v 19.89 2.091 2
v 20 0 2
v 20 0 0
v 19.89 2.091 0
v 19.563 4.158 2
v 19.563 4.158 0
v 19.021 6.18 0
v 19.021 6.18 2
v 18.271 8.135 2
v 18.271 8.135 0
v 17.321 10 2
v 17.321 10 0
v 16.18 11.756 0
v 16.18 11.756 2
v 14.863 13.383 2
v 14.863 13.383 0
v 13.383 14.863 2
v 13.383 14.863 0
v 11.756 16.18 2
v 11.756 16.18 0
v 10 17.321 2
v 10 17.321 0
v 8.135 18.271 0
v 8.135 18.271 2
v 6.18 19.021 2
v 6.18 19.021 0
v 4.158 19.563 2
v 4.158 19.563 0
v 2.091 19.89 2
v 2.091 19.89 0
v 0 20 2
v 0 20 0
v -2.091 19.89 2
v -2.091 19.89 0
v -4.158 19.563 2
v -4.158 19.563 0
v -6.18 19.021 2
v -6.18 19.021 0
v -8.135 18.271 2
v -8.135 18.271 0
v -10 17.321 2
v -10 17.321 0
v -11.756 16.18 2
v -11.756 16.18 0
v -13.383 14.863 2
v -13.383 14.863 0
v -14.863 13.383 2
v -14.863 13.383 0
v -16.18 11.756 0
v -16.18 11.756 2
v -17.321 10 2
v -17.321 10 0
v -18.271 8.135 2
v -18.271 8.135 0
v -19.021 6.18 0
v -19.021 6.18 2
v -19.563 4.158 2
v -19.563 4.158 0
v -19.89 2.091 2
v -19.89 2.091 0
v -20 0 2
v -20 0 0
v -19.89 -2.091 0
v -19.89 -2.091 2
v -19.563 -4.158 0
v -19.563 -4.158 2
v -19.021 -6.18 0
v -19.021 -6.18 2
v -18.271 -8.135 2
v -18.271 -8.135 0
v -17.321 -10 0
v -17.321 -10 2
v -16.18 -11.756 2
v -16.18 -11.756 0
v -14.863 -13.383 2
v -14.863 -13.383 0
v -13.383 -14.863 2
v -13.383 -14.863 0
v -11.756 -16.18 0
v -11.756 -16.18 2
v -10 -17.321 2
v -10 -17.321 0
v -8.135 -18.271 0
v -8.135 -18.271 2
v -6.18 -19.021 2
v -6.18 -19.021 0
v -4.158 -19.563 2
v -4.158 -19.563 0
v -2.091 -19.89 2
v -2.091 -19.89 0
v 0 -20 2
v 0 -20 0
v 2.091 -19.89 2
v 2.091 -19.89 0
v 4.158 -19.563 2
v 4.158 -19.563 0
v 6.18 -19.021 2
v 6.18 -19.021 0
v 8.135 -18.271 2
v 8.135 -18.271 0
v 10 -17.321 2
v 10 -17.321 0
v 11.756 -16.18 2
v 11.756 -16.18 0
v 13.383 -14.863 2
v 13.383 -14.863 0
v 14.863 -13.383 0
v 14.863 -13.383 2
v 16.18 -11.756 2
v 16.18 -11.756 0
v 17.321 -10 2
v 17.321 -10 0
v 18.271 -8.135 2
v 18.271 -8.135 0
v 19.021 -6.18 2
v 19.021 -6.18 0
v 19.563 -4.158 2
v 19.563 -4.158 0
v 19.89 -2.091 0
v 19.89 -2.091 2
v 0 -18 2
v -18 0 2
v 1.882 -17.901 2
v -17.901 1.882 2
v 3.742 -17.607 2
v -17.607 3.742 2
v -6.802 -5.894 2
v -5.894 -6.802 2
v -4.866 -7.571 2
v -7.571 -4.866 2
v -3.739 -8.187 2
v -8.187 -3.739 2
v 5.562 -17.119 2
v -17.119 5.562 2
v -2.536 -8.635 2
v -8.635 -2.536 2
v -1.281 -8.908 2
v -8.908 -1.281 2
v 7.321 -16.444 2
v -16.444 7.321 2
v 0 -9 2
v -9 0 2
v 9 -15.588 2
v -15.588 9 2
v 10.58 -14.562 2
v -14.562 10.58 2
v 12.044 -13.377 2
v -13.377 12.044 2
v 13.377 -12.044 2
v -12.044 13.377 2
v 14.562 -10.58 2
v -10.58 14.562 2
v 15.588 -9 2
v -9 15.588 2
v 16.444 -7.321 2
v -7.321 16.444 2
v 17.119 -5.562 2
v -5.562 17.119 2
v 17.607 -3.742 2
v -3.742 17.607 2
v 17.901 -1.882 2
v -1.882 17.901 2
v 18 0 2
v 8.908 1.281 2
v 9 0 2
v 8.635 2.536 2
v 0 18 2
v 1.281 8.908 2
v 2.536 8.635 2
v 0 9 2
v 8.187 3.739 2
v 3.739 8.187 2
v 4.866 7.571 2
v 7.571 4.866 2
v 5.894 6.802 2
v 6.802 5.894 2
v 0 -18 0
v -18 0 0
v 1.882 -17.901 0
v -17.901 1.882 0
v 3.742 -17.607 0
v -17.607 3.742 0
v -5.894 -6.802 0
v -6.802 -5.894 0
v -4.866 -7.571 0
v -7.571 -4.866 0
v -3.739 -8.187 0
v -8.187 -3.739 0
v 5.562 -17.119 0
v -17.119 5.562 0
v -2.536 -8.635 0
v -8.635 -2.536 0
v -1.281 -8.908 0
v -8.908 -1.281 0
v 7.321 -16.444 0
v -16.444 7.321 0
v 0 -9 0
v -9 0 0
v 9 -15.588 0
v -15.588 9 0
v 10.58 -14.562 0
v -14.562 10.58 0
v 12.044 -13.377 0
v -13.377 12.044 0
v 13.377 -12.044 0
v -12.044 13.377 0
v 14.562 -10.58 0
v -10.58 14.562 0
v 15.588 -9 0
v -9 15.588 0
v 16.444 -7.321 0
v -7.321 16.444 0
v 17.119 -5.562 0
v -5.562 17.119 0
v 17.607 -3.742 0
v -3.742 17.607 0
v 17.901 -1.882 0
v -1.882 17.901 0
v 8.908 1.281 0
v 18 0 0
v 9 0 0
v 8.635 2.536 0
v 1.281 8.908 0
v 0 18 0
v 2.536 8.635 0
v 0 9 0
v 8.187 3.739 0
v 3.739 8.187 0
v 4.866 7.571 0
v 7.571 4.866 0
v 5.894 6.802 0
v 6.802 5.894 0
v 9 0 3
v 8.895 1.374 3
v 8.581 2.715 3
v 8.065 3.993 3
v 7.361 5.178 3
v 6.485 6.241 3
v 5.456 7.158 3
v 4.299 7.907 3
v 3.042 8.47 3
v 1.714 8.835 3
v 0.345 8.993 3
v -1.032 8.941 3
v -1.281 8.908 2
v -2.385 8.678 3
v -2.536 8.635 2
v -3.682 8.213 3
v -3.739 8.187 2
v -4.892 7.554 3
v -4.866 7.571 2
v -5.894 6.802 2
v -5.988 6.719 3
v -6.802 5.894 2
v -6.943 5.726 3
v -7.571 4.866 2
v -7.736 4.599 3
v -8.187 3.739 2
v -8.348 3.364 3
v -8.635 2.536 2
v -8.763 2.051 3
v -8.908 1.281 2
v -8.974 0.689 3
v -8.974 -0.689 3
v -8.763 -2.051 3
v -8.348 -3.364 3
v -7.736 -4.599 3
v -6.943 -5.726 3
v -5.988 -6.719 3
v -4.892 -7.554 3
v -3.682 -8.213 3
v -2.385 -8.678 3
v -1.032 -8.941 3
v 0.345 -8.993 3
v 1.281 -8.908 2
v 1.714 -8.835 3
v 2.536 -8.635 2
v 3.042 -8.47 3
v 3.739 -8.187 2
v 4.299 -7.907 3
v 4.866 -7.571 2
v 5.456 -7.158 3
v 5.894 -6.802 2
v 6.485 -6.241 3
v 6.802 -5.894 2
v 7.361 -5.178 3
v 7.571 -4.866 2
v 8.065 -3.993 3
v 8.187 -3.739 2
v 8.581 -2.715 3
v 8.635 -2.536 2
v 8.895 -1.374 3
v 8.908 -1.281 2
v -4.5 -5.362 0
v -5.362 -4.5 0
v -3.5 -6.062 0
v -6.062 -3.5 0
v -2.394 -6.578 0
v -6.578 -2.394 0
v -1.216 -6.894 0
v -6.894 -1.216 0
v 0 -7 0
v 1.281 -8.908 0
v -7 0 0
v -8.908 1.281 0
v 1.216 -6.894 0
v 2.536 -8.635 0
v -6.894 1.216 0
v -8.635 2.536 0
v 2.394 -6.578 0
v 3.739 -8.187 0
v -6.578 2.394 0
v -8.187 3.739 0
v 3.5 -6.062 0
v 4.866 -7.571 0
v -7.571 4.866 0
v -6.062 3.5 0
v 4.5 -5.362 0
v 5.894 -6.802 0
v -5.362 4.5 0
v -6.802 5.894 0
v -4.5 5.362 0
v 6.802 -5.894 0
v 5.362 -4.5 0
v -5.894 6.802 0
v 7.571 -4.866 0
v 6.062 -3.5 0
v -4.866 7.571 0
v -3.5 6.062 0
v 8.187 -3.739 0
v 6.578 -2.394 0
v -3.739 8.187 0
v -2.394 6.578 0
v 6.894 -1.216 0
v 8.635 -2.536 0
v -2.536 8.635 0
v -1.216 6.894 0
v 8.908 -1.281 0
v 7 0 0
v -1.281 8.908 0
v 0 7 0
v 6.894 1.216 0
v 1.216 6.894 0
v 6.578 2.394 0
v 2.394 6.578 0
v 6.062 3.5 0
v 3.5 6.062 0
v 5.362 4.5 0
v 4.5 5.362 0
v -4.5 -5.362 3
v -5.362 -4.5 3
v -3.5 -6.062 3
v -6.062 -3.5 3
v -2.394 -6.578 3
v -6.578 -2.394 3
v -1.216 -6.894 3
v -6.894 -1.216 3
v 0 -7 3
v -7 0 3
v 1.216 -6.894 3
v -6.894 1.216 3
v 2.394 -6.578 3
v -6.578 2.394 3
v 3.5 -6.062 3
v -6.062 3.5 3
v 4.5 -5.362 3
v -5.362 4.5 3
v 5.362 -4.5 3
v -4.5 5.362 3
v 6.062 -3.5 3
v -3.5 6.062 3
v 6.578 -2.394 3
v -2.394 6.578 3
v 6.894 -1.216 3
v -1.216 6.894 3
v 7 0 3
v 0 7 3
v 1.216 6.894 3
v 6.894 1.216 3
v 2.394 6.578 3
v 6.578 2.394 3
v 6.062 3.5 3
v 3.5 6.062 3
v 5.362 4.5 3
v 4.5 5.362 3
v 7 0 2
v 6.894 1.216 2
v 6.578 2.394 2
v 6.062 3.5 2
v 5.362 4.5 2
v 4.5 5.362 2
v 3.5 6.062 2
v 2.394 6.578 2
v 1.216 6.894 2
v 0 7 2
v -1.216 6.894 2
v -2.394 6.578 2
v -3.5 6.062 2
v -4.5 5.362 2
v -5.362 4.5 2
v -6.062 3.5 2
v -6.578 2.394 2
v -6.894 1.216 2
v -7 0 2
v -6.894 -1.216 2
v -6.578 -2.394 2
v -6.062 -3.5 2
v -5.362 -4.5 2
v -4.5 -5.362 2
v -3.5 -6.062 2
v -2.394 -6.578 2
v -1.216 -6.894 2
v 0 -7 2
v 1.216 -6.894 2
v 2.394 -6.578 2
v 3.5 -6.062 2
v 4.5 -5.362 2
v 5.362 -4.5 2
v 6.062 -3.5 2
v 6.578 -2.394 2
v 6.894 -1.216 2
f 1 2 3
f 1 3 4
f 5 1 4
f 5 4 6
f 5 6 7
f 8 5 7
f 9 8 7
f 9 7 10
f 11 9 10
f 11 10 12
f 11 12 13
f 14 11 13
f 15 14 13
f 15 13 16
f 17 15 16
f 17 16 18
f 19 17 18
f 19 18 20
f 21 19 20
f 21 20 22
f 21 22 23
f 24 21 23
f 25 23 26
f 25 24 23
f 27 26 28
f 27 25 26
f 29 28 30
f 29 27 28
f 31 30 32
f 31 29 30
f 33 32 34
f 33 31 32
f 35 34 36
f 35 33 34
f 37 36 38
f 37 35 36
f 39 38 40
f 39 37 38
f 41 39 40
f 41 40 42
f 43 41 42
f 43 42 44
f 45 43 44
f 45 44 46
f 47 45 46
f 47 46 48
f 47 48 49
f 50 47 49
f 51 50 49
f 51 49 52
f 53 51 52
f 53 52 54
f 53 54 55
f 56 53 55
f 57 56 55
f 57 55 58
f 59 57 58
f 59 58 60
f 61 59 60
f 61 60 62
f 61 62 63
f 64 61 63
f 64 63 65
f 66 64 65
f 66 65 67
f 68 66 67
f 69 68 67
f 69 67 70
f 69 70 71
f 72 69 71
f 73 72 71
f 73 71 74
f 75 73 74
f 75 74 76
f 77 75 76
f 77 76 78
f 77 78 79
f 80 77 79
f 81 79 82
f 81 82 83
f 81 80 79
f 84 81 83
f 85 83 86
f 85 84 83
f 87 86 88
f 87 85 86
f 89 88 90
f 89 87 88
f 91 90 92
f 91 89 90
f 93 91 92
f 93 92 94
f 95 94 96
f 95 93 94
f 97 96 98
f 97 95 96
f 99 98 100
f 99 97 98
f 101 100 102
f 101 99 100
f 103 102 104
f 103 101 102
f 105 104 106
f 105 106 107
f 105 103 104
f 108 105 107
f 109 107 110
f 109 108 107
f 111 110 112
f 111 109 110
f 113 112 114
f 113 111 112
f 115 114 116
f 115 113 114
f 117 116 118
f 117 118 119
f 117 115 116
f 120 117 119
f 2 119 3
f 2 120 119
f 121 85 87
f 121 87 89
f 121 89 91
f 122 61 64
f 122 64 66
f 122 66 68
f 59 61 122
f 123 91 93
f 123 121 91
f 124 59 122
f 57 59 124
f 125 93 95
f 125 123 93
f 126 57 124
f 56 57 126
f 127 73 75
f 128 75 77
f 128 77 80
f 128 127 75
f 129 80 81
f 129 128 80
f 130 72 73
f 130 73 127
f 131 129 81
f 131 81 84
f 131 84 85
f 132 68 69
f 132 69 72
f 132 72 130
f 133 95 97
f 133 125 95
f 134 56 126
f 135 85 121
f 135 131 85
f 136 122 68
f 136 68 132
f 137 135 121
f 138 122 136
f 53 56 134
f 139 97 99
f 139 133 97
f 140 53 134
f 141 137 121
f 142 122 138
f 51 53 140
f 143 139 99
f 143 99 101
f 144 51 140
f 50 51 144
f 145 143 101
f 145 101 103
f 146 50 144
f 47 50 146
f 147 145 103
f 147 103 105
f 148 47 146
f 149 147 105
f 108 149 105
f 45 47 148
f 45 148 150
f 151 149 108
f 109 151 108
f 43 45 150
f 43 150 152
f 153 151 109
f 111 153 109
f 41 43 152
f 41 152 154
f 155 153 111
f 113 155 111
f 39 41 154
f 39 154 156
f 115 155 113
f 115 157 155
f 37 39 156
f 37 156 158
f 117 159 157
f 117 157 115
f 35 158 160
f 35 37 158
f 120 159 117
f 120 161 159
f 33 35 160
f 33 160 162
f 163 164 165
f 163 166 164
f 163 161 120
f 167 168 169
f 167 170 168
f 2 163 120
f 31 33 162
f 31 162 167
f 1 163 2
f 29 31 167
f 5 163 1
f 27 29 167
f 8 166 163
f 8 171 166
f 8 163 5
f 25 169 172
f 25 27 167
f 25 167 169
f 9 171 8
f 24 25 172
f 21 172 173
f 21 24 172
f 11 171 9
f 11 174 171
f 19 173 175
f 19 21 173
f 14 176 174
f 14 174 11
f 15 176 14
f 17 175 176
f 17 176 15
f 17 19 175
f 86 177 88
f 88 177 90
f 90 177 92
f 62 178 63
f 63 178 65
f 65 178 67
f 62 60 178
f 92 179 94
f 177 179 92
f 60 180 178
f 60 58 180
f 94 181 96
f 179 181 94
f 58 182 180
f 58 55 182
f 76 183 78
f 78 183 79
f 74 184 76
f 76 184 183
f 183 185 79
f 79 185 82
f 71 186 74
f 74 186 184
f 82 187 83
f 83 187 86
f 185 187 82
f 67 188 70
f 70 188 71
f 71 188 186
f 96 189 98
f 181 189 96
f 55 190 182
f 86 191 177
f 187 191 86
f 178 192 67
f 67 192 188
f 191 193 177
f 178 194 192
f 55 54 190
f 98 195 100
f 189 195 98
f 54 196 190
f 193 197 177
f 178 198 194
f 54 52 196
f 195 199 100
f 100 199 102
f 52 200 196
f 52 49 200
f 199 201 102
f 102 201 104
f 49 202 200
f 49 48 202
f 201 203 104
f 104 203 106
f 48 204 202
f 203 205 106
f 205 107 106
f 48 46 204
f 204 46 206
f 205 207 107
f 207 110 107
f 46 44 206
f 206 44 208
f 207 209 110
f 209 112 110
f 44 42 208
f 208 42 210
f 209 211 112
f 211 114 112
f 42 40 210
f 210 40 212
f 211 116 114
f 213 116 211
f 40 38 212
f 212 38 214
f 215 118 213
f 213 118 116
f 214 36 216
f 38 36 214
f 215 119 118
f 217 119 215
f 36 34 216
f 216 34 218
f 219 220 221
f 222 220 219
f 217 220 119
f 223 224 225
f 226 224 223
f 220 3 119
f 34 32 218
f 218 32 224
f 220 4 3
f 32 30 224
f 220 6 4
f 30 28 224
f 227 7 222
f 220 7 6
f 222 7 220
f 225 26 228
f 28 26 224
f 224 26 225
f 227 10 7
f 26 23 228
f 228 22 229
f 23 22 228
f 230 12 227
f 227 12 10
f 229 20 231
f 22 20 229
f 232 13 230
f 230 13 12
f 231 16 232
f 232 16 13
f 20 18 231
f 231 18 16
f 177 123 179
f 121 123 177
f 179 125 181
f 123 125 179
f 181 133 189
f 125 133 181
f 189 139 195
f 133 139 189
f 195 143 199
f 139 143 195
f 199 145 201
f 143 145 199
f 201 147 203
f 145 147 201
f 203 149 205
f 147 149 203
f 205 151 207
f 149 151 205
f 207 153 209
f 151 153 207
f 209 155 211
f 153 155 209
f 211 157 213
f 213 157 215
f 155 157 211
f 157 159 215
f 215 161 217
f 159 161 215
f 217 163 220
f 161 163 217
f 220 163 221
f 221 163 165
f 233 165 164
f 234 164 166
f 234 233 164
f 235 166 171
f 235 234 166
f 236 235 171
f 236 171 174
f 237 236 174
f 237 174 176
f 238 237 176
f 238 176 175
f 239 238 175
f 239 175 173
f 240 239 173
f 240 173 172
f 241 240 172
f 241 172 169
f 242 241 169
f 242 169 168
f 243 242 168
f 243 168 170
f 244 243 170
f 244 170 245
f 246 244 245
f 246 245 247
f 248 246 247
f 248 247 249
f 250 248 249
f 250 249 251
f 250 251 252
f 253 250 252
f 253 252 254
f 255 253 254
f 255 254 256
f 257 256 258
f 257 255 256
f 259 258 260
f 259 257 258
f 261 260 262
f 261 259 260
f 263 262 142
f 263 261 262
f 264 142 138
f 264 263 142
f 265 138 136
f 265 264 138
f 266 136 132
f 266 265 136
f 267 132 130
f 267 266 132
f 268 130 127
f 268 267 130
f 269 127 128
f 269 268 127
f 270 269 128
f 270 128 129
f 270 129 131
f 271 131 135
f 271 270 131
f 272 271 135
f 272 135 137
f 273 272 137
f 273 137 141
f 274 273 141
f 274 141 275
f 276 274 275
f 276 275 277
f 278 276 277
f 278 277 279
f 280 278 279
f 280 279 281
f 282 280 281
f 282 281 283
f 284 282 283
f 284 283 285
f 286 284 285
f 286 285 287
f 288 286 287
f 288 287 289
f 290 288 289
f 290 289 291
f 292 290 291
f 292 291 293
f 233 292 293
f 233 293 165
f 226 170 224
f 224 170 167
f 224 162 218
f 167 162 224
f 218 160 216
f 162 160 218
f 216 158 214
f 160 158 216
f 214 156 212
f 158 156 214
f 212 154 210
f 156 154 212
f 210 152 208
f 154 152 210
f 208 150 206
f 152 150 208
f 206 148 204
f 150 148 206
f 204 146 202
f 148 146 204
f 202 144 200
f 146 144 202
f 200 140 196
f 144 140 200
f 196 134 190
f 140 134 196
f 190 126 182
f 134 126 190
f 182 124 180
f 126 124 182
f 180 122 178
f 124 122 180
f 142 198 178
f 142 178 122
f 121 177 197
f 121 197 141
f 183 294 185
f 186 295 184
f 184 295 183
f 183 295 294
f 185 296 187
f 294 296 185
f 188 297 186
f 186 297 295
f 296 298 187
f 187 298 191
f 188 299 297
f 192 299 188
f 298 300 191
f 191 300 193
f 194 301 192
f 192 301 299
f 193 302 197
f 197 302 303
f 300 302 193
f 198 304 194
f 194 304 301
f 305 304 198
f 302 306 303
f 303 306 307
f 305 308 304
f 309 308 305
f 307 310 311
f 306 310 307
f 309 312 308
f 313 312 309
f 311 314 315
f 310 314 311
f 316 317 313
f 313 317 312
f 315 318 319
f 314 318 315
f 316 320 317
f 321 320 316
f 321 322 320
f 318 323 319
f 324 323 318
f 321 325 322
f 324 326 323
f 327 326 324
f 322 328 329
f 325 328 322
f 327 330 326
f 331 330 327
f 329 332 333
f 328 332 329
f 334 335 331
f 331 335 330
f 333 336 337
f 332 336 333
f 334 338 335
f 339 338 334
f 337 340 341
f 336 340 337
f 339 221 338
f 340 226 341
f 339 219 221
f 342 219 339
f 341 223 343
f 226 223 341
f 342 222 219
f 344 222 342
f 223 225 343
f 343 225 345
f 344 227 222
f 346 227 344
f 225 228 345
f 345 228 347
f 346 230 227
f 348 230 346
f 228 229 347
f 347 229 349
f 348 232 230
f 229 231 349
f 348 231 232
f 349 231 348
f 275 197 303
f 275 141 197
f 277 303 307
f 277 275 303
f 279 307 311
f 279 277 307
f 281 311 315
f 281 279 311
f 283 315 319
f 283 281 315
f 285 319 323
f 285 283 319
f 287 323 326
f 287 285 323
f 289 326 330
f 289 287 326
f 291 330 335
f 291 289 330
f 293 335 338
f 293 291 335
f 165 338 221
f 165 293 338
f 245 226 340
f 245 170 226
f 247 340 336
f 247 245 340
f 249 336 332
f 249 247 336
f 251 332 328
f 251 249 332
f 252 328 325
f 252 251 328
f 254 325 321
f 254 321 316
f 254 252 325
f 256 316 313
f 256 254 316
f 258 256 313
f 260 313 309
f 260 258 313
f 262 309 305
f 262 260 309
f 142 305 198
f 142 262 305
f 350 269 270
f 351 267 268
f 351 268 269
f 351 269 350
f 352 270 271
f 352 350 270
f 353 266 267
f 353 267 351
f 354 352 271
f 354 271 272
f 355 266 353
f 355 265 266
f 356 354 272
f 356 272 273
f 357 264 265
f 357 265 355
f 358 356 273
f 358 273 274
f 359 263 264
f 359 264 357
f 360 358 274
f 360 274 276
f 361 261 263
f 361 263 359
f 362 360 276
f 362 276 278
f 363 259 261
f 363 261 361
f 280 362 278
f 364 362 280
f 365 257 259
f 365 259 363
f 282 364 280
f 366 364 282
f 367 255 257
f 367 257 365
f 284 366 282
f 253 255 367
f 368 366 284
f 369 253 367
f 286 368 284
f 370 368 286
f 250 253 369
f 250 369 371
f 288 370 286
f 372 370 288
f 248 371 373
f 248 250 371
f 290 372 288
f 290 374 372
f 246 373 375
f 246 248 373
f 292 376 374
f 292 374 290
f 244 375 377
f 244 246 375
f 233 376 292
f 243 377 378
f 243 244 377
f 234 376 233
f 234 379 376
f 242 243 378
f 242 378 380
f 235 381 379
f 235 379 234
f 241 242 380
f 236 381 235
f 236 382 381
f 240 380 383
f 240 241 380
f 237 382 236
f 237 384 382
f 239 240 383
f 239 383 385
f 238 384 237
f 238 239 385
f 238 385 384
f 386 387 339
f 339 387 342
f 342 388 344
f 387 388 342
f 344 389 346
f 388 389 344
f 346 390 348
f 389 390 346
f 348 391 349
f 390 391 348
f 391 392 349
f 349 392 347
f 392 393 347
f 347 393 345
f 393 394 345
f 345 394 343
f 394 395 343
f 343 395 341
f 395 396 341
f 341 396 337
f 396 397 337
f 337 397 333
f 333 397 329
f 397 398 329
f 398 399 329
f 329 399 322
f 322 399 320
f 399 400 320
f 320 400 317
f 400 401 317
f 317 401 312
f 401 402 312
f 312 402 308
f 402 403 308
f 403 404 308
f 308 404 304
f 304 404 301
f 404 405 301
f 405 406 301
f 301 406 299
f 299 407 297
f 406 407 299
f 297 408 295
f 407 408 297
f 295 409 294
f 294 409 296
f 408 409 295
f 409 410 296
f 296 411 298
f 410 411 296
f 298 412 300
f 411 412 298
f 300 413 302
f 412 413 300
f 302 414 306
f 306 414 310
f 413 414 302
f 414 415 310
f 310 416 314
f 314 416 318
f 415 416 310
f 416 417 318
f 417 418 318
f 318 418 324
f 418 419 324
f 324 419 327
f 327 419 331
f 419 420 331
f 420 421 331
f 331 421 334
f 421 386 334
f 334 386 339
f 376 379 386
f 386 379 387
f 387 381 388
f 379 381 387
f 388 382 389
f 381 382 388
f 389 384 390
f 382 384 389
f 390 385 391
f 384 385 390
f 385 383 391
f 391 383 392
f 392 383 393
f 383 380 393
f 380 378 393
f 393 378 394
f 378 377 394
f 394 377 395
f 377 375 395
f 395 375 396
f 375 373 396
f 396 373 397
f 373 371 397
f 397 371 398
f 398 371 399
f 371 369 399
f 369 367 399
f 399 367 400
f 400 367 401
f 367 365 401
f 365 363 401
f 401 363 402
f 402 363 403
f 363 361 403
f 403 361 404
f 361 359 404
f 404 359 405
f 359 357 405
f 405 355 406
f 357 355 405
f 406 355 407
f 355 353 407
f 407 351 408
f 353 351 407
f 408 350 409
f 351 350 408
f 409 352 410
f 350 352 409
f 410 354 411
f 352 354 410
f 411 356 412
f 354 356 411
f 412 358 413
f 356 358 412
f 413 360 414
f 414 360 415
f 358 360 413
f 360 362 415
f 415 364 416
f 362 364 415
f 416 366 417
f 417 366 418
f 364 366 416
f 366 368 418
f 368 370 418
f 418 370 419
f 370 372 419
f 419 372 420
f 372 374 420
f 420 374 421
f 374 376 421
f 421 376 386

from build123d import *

# Parameters (mm, degrees)
TUBE002_R     = 9
TUBE002_R_2   = 7
TUBE002_DEPTH = 3
BOX001_W      = 20
BOX001_H      = 20
BOX001_DEPTH  = 10
BOX_W         = 20
BOX_H         = 20
BOX_DEPTH     = 10
TUBE_R        = 18
TUBE_R_2      = 9
TUBE_DEPTH    = 10
TUBE001_R     = 20
TUBE001_R_2   = 7
TUBE001_DEPTH = 2


with BuildPart() as tube002:
    # Tube002 → Tube002 (new body)
    with BuildSketch(Plane.XY):
        Circle(TUBE002_R)
        Circle(TUBE002_R_2, mode=Mode.SUBTRACT)
    extrude(amount=TUBE002_DEPTH)


with BuildPart() as cubo001:
    # Box001 → Box001 (new body)
    with BuildSketch(Plane(origin=(-20, -20, 0), x_dir=(1, 0, 0), z_dir=(0, 0, 1))):
        with Locations((10, 10)):
            Rectangle(BOX001_W, BOX001_H)
    extrude(amount=BOX001_DEPTH)


with BuildPart() as cubo:
    # Box → Box (new body)
    with BuildSketch(Plane.XY):
        with Locations((10, 10)):
            Rectangle(BOX_W, BOX_H)
    extrude(amount=BOX_DEPTH)


with BuildPart() as cut001:
    # Tube → Tube (new body)
    with BuildSketch(Plane.XY):
        Circle(TUBE_R)
        Circle(TUBE_R_2, mode=Mode.SUBTRACT)
    extrude(amount=TUBE_DEPTH)

    # Cut: cut Cubo
    add(cubo.part, mode=Mode.SUBTRACT)

    # Cut001: cut Cubo001
    add(cubo001.part, mode=Mode.SUBTRACT)


with BuildPart() as fusion:
    # Tube001 → Tube001 (new body)
    with BuildSketch(Plane.XY):
        Circle(TUBE001_R)
        Circle(TUBE001_R_2, mode=Mode.SUBTRACT)
    extrude(amount=TUBE001_DEPTH)

    # Cut002: cut Cut001
    add(cut001.part, mode=Mode.SUBTRACT)

    # Fusion: union Tube002
    add(tube002.part)


solid = fusion.part
